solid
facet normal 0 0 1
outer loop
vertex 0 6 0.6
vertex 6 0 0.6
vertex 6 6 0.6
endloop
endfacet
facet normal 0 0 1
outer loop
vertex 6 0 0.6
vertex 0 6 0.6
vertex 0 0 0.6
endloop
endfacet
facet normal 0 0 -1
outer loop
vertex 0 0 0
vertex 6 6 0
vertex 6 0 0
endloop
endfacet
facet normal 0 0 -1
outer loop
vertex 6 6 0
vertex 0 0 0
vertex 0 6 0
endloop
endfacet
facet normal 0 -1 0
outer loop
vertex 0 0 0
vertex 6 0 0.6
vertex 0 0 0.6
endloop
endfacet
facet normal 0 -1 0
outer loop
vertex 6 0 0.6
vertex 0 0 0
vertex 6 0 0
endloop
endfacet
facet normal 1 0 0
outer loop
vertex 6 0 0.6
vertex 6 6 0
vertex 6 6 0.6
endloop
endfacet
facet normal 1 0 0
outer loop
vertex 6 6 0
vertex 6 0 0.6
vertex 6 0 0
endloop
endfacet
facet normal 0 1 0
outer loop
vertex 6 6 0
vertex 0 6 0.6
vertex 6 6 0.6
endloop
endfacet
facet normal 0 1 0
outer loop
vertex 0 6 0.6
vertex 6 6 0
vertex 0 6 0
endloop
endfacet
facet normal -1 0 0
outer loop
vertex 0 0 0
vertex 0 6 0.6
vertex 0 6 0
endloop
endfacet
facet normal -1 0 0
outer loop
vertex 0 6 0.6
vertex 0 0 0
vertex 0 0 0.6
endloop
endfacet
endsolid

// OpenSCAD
/* Warning, this is a very basic generator with a lot of approximation 
input data : [UFBGA, CVB, 6x6x0.6mm, 144, , A, C04-21475A]
generated by com.zoubworld.electronics.cad.model3d.Basic
Date : Sun Feb 15 10:50:49 CET 2026
*/

//body
color("black")
translate([0,0,0])
cube([6.0,6.0,0.6], center=false);
